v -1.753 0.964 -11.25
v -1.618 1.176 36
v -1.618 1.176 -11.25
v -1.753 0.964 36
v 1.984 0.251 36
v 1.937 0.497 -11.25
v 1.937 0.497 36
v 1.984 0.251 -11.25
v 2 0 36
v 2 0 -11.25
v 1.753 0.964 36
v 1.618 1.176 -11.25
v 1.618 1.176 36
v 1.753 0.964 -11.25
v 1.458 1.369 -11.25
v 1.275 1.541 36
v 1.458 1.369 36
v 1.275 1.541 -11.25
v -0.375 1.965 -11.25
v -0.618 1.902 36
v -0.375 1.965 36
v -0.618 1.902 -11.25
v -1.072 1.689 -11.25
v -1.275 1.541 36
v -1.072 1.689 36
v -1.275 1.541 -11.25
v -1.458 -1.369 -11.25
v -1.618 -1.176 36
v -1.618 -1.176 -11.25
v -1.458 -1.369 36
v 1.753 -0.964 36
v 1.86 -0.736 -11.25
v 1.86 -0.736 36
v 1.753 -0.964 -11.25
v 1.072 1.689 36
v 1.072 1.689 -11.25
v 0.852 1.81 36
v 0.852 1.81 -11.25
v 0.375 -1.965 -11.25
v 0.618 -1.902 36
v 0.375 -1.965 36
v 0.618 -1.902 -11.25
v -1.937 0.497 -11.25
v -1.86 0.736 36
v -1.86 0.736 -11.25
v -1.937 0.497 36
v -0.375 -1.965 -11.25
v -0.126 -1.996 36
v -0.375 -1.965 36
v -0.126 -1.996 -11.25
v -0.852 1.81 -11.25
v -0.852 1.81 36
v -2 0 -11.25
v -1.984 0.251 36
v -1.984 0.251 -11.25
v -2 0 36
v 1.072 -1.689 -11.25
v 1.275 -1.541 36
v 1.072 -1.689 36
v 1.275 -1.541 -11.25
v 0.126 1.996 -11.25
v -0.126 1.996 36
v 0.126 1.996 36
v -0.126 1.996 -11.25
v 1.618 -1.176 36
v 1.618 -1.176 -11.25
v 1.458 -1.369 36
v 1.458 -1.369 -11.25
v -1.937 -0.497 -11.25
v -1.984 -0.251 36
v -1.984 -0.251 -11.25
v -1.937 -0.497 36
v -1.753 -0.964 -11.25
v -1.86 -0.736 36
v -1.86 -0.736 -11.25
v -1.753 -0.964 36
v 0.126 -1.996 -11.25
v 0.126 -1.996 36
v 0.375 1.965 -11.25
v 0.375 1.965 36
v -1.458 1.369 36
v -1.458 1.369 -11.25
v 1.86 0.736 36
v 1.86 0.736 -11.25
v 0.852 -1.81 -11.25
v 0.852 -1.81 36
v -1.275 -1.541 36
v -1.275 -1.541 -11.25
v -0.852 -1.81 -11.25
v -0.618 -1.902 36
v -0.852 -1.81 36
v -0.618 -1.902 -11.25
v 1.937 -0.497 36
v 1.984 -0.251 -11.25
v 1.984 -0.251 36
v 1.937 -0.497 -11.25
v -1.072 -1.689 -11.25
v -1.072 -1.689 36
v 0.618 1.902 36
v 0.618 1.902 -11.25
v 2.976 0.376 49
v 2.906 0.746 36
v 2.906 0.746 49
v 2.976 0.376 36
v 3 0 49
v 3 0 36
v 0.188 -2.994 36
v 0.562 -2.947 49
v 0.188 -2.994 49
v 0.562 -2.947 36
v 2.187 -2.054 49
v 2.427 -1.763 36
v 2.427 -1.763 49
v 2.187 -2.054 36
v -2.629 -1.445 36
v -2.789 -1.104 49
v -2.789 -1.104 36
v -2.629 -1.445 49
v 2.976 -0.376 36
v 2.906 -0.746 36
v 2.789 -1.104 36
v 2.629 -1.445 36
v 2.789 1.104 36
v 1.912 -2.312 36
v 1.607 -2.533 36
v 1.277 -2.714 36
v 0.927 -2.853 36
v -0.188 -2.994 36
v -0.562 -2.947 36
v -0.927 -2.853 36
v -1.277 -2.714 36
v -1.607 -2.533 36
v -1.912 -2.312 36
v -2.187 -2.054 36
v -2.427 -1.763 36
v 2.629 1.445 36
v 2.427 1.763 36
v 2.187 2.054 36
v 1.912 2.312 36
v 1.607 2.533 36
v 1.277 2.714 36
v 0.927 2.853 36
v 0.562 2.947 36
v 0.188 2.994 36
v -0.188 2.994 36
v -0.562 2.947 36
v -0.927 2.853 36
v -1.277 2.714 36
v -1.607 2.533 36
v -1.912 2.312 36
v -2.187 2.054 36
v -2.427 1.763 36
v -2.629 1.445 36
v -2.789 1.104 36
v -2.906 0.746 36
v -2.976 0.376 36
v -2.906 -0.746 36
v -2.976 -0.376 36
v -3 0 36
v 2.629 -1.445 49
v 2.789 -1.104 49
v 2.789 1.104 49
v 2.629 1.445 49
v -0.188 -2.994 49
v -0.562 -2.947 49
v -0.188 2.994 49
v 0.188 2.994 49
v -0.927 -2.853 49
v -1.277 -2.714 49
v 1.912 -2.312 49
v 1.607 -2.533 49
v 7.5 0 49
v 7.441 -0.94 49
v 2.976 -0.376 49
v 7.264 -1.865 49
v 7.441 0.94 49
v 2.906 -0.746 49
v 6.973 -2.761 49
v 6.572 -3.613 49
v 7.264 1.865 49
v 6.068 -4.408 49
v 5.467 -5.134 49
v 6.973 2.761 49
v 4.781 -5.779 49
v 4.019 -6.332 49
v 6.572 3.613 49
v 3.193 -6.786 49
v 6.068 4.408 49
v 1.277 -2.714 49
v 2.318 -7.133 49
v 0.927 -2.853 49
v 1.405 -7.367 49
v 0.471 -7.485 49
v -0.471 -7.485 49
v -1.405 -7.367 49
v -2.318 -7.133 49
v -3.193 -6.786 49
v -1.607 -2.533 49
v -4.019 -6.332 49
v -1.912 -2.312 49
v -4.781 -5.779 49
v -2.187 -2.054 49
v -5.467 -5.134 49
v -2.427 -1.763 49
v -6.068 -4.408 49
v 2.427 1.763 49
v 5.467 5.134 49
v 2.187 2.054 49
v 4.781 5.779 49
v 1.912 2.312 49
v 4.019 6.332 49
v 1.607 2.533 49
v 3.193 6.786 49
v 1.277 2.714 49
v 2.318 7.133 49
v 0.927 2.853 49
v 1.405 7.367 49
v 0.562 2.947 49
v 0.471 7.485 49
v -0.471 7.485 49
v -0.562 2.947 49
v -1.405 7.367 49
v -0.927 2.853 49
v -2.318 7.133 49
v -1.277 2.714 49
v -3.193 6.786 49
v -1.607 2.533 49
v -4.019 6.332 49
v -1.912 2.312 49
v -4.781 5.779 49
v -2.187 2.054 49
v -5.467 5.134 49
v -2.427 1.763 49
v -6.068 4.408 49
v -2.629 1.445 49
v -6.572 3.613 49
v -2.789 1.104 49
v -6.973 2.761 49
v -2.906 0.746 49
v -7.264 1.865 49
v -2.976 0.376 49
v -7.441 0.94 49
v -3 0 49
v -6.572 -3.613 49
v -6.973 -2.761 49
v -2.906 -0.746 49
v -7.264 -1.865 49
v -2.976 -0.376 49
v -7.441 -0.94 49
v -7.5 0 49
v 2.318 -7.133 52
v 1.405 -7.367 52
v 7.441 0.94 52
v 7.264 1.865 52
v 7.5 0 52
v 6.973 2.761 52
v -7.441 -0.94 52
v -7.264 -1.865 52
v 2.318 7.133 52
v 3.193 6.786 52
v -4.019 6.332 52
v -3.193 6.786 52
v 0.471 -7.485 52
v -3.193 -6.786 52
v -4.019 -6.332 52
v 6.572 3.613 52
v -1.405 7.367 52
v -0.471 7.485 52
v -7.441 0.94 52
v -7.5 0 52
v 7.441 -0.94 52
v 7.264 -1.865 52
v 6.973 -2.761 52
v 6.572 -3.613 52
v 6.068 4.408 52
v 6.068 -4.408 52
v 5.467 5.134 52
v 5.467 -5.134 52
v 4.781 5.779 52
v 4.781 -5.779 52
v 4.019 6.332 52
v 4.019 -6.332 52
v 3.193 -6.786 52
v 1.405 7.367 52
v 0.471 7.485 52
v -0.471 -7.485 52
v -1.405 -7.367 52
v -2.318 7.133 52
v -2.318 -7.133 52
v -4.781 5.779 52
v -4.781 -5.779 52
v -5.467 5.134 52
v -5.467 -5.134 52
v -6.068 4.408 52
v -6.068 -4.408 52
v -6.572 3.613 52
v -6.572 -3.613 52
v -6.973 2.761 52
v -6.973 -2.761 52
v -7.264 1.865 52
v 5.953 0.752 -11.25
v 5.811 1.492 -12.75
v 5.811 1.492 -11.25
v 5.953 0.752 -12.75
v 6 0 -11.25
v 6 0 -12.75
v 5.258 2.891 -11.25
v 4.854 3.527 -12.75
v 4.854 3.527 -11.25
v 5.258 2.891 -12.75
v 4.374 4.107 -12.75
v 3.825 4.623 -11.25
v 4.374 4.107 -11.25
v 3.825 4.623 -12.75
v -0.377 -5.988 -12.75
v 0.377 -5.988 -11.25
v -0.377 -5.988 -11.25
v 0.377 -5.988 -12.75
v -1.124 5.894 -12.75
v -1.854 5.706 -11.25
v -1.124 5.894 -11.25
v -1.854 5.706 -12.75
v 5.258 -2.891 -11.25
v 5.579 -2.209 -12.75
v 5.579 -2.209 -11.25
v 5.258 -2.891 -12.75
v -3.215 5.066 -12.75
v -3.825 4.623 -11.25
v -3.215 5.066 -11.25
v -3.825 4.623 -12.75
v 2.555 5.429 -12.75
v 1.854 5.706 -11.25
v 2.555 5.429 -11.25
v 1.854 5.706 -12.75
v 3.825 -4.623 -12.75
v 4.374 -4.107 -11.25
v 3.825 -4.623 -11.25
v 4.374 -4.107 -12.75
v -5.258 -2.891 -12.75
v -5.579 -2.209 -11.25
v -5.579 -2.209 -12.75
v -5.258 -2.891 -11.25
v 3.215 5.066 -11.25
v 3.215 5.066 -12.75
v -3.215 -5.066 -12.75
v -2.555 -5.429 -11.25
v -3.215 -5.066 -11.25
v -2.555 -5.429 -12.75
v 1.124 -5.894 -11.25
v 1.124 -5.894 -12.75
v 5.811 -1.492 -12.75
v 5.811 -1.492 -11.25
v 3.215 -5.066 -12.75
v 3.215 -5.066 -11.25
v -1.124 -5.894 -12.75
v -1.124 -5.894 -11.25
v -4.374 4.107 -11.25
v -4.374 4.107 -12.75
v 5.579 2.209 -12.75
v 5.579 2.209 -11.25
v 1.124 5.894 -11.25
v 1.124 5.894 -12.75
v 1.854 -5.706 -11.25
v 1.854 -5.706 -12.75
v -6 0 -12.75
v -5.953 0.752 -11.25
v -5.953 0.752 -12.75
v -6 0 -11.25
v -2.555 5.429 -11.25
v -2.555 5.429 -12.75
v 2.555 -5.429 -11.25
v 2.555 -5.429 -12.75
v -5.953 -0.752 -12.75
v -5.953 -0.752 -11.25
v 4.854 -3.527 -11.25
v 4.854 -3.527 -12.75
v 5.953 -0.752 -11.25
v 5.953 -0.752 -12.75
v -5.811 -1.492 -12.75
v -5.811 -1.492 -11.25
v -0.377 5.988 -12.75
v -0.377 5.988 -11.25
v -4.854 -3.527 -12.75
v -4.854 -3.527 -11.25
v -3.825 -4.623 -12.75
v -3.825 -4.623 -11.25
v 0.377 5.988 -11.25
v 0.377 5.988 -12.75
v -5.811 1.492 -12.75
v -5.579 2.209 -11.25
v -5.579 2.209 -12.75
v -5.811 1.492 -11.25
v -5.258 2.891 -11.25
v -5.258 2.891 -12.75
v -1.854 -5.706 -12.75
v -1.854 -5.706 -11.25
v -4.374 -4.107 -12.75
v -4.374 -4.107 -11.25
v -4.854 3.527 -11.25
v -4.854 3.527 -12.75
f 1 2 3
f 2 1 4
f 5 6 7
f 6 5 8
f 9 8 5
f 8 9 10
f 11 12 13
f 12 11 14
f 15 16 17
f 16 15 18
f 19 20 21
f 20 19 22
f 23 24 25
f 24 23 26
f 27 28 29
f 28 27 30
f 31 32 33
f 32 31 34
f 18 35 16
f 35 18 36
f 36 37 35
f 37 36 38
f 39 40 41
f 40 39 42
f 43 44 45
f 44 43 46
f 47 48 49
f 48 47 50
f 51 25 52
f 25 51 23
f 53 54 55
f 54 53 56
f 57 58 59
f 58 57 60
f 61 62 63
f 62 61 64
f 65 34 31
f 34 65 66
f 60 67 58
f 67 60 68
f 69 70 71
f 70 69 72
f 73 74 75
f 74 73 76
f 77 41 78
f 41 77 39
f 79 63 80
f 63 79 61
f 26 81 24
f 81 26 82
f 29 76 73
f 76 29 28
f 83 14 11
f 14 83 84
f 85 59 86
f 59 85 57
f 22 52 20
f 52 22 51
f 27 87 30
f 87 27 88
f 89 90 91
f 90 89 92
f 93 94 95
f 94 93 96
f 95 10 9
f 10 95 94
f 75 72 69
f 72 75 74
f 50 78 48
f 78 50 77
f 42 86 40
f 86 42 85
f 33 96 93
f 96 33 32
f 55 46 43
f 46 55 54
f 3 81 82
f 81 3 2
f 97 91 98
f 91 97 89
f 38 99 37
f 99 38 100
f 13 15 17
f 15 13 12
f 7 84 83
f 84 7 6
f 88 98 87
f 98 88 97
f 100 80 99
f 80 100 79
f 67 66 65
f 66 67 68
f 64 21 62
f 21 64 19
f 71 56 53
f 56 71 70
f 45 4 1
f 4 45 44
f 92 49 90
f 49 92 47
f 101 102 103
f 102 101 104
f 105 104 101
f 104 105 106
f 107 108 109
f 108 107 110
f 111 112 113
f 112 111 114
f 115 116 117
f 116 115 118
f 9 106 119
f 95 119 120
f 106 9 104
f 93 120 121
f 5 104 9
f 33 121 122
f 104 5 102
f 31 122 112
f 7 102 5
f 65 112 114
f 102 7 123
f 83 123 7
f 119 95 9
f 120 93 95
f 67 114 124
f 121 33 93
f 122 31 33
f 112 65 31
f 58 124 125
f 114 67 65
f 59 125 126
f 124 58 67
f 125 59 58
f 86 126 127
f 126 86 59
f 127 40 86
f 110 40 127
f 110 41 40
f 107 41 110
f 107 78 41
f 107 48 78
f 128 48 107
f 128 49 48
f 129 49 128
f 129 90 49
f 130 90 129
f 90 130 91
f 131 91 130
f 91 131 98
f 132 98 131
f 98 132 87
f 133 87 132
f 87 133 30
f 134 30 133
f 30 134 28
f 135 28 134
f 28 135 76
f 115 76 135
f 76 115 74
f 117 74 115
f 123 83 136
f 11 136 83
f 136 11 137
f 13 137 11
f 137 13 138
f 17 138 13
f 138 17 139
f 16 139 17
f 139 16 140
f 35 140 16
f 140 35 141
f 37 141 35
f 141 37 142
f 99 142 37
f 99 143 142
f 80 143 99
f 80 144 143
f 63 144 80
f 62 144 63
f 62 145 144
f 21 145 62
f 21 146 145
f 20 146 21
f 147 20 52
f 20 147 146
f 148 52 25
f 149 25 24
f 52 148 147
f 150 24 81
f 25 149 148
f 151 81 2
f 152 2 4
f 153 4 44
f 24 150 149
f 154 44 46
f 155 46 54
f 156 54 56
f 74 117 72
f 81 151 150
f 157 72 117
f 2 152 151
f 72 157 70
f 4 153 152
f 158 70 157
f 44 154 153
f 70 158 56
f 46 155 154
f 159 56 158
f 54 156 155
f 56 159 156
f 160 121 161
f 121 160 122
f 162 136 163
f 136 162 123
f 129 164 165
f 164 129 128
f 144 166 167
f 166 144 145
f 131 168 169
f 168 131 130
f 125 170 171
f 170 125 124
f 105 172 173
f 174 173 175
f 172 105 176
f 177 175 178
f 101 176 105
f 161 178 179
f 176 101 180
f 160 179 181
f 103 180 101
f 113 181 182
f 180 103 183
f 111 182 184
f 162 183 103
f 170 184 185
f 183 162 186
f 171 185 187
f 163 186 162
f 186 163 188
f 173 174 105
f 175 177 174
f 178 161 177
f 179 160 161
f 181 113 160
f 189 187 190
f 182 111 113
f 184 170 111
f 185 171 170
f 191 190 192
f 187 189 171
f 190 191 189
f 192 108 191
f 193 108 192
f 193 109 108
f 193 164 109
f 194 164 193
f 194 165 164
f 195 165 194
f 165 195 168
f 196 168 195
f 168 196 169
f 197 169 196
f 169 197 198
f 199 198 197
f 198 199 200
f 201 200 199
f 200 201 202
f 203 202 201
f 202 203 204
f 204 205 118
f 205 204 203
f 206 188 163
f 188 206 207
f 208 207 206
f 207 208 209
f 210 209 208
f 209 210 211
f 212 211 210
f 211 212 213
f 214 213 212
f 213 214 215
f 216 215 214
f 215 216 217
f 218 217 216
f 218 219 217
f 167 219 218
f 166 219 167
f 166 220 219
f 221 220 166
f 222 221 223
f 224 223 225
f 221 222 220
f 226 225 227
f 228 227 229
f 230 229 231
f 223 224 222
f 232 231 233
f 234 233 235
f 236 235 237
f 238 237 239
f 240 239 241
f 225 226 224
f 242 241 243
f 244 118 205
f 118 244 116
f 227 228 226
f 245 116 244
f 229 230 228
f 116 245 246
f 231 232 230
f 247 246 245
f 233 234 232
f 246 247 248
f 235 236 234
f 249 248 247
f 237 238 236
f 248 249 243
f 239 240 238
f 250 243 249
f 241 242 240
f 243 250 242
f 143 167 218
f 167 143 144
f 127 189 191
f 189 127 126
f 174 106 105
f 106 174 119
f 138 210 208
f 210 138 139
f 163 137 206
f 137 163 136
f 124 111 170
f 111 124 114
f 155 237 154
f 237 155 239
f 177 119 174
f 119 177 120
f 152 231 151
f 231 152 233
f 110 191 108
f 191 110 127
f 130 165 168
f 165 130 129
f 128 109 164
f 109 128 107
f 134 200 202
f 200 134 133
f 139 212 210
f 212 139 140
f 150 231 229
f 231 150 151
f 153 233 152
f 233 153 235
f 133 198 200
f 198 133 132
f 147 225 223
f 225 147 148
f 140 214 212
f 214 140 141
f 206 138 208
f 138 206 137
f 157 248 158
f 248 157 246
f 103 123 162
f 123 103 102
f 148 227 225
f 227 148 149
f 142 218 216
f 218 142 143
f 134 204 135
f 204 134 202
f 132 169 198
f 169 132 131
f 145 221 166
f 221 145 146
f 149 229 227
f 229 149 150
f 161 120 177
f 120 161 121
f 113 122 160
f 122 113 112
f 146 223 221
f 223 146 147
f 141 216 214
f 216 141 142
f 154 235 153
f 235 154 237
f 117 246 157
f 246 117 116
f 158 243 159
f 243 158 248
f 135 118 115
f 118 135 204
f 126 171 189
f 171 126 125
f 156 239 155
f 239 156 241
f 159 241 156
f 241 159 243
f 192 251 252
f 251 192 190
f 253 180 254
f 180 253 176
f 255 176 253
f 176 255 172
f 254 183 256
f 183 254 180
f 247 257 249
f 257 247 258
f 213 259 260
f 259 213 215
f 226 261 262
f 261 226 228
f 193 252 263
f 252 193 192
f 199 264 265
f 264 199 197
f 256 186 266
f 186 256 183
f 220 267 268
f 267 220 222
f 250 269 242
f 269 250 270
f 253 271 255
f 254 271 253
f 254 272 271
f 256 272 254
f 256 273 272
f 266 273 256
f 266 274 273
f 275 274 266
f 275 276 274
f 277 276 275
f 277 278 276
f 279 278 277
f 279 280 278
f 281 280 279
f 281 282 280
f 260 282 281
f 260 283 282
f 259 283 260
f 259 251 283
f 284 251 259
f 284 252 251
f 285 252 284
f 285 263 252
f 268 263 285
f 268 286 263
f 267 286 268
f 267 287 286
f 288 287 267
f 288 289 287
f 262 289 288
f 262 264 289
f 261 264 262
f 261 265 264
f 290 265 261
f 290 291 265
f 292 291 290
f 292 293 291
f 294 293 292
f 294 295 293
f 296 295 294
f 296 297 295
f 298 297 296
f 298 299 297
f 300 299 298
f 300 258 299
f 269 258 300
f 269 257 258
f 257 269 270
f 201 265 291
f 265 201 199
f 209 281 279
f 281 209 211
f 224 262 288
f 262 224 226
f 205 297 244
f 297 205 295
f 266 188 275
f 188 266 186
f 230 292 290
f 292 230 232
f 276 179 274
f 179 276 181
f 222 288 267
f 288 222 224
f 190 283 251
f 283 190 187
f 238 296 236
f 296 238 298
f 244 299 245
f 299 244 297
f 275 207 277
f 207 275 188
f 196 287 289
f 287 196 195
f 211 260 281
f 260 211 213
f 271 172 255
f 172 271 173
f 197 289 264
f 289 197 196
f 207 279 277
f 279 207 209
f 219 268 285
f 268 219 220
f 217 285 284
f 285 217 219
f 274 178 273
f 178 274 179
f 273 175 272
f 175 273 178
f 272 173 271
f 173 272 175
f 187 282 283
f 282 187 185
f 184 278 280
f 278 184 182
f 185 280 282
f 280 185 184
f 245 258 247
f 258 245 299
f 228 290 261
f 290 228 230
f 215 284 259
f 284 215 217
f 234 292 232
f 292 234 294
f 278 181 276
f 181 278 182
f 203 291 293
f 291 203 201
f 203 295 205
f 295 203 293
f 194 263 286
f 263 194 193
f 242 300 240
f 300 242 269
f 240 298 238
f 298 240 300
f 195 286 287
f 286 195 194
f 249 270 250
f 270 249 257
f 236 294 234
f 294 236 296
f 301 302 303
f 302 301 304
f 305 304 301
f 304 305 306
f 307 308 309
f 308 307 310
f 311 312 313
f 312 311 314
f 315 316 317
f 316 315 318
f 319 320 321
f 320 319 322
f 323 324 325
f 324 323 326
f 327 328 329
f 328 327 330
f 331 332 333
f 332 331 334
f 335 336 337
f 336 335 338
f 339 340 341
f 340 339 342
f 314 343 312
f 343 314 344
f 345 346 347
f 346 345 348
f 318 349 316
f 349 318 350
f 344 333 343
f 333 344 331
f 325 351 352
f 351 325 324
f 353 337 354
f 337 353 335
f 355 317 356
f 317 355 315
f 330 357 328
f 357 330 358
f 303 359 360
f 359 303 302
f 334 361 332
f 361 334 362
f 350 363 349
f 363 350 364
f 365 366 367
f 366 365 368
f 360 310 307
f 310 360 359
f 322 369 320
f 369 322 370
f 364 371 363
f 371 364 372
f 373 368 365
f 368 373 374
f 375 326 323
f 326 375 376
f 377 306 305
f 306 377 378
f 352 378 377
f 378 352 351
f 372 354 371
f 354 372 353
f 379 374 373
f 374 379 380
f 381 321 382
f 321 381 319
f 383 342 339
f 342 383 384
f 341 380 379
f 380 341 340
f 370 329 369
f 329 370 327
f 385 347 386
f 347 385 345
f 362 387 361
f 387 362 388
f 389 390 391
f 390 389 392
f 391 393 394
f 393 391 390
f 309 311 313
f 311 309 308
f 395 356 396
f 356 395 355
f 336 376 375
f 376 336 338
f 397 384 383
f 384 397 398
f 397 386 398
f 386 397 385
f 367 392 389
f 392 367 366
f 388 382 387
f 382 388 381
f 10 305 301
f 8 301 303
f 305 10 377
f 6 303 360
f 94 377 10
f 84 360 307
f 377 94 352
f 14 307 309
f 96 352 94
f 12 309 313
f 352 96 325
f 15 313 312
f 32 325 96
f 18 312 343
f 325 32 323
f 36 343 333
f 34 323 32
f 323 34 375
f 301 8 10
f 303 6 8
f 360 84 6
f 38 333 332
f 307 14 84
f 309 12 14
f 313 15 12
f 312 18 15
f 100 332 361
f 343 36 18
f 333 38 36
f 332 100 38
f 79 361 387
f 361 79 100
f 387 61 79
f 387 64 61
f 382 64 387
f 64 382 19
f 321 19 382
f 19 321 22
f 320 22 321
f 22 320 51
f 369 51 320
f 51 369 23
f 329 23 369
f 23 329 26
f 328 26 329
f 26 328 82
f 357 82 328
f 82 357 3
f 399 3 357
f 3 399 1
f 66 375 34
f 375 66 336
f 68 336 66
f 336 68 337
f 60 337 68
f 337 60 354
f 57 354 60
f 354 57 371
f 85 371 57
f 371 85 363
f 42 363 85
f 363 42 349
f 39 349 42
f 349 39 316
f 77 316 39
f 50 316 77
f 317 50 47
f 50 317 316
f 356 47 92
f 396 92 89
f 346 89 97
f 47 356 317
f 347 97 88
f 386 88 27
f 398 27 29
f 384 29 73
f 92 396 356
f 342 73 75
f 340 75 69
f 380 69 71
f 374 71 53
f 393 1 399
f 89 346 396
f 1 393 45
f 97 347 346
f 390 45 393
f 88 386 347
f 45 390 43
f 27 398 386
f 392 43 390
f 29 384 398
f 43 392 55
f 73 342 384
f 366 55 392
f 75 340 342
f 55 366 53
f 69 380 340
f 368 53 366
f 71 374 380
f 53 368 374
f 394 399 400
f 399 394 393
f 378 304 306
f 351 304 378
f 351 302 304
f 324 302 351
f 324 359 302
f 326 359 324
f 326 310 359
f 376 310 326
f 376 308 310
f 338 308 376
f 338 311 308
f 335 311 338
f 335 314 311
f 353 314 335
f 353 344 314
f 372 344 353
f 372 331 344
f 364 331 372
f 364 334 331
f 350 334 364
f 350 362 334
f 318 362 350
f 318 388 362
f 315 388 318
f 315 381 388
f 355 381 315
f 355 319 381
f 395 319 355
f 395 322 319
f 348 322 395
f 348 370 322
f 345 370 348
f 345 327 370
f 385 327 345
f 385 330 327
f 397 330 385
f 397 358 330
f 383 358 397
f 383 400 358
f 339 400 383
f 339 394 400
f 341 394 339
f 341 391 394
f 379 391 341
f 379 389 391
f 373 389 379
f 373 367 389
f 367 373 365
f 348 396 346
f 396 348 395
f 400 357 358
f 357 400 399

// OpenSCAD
// file: variables.scad
$fn = 50;
//chambres

//globol

decal = 5; //decalage global chambres
lg = 310; //longueur totale
lag = 60; //largeur totae
ep = 1.5; //epaisseur plak
etv = 19; // ecart vert touches
eth = 14; //ecrat hor touches
nb = 15; //nombre de touches

//plaque dessus

hpd = 40; //hauteur plaque dessus
dth = 8; //diametre des trous pl haut
dtb = 6; //diametre des trous pl bas

//include <plaque_dessus.scad>

//tubes 

dtige=4; //diametre tige bouton
dtub = 6; //dimatre tube 
drtub = 8; //diametre tube ressort
hrtub = 10; //hauteur ressort tube
hbtub = 14; //hauteur du bas du tube

//include <tubes.scad>

//chambre

htc=10;//hauteur chambres
epa = 2; //epaisseur ailettes
epc=3; //grosse epaisseur chmbre

long0=etv-drtub;
long00=etv-drtub-ep*2;
long000=etv+etv/2;
long1=lag/2-drtub/2-epc-epc/2;
long2=lag/2+epc/2+drtub/2;

longb = 10; //largueur basse ailette
longh = 5; //largeur haute ailette

lab = lag-longb*2;


//plaque dessus ici a cause des variables des chambres


//tigettes

epe = 6; //epaisseur escalier
escalier = 3; //ecart de hauteur des touches
htig = hpd+epe;
etouch = 3; //epaisseur touche    
diat = 15; // diametre de la touche
//coté droit



echo();
echo();
echo();
echo();
echo("***********************");
echo("long000 aka inter cloisons = ", long000);
echo("long0 fond des cloisons = ", long0);
echo("long1 base ailette centrale = ", long1);
echo("long2 base ailette grande = ", long2);




echo("*********************** ");
echo();
echo();


hypo = sqrt((longb-longh)^2 + hpd^2);
echo("hypo" ,hypo);
cosin = hpd/hypo;
echo("cos alpha",cosin);
angle = acos(cosin);
echo("angle",angle);



//reservoir d'air


htr = 8;



//plaques ltérales

hhtt=37; //hauteur première plaque

//include <plaques_laterales.scad>

//plaques internes

//plaque intermediaire ou bout de bois


hauteur = hpd-hrtub;
echo("hauteur" , hauteur);
hypopo = 1 / (cos(angle) / hauteur);
hypopopo = 1 / (cos(angle) / hpd);
echo("hypopo", hypopo);
coop = sin(angle) * hypopo;
echo("coop", coop);

//plaques laterale interne
// main file
include <variables.scad>




translate([0,0,-longb-ep-0.5])
cylinder(htig+escalier, d=dtige);
translate([0,0,hpd-hrtub+epe])
cylinder(hrtub+escalier, d=dtub);
translate([0,0,hpd+epe+escalier])
cylinder(etouch, d=diat); //touvhe
    
translate([0,0,-ep/2-longb-ep-0.5])    
cylinder(ep, d= drtub+4); //clapet
